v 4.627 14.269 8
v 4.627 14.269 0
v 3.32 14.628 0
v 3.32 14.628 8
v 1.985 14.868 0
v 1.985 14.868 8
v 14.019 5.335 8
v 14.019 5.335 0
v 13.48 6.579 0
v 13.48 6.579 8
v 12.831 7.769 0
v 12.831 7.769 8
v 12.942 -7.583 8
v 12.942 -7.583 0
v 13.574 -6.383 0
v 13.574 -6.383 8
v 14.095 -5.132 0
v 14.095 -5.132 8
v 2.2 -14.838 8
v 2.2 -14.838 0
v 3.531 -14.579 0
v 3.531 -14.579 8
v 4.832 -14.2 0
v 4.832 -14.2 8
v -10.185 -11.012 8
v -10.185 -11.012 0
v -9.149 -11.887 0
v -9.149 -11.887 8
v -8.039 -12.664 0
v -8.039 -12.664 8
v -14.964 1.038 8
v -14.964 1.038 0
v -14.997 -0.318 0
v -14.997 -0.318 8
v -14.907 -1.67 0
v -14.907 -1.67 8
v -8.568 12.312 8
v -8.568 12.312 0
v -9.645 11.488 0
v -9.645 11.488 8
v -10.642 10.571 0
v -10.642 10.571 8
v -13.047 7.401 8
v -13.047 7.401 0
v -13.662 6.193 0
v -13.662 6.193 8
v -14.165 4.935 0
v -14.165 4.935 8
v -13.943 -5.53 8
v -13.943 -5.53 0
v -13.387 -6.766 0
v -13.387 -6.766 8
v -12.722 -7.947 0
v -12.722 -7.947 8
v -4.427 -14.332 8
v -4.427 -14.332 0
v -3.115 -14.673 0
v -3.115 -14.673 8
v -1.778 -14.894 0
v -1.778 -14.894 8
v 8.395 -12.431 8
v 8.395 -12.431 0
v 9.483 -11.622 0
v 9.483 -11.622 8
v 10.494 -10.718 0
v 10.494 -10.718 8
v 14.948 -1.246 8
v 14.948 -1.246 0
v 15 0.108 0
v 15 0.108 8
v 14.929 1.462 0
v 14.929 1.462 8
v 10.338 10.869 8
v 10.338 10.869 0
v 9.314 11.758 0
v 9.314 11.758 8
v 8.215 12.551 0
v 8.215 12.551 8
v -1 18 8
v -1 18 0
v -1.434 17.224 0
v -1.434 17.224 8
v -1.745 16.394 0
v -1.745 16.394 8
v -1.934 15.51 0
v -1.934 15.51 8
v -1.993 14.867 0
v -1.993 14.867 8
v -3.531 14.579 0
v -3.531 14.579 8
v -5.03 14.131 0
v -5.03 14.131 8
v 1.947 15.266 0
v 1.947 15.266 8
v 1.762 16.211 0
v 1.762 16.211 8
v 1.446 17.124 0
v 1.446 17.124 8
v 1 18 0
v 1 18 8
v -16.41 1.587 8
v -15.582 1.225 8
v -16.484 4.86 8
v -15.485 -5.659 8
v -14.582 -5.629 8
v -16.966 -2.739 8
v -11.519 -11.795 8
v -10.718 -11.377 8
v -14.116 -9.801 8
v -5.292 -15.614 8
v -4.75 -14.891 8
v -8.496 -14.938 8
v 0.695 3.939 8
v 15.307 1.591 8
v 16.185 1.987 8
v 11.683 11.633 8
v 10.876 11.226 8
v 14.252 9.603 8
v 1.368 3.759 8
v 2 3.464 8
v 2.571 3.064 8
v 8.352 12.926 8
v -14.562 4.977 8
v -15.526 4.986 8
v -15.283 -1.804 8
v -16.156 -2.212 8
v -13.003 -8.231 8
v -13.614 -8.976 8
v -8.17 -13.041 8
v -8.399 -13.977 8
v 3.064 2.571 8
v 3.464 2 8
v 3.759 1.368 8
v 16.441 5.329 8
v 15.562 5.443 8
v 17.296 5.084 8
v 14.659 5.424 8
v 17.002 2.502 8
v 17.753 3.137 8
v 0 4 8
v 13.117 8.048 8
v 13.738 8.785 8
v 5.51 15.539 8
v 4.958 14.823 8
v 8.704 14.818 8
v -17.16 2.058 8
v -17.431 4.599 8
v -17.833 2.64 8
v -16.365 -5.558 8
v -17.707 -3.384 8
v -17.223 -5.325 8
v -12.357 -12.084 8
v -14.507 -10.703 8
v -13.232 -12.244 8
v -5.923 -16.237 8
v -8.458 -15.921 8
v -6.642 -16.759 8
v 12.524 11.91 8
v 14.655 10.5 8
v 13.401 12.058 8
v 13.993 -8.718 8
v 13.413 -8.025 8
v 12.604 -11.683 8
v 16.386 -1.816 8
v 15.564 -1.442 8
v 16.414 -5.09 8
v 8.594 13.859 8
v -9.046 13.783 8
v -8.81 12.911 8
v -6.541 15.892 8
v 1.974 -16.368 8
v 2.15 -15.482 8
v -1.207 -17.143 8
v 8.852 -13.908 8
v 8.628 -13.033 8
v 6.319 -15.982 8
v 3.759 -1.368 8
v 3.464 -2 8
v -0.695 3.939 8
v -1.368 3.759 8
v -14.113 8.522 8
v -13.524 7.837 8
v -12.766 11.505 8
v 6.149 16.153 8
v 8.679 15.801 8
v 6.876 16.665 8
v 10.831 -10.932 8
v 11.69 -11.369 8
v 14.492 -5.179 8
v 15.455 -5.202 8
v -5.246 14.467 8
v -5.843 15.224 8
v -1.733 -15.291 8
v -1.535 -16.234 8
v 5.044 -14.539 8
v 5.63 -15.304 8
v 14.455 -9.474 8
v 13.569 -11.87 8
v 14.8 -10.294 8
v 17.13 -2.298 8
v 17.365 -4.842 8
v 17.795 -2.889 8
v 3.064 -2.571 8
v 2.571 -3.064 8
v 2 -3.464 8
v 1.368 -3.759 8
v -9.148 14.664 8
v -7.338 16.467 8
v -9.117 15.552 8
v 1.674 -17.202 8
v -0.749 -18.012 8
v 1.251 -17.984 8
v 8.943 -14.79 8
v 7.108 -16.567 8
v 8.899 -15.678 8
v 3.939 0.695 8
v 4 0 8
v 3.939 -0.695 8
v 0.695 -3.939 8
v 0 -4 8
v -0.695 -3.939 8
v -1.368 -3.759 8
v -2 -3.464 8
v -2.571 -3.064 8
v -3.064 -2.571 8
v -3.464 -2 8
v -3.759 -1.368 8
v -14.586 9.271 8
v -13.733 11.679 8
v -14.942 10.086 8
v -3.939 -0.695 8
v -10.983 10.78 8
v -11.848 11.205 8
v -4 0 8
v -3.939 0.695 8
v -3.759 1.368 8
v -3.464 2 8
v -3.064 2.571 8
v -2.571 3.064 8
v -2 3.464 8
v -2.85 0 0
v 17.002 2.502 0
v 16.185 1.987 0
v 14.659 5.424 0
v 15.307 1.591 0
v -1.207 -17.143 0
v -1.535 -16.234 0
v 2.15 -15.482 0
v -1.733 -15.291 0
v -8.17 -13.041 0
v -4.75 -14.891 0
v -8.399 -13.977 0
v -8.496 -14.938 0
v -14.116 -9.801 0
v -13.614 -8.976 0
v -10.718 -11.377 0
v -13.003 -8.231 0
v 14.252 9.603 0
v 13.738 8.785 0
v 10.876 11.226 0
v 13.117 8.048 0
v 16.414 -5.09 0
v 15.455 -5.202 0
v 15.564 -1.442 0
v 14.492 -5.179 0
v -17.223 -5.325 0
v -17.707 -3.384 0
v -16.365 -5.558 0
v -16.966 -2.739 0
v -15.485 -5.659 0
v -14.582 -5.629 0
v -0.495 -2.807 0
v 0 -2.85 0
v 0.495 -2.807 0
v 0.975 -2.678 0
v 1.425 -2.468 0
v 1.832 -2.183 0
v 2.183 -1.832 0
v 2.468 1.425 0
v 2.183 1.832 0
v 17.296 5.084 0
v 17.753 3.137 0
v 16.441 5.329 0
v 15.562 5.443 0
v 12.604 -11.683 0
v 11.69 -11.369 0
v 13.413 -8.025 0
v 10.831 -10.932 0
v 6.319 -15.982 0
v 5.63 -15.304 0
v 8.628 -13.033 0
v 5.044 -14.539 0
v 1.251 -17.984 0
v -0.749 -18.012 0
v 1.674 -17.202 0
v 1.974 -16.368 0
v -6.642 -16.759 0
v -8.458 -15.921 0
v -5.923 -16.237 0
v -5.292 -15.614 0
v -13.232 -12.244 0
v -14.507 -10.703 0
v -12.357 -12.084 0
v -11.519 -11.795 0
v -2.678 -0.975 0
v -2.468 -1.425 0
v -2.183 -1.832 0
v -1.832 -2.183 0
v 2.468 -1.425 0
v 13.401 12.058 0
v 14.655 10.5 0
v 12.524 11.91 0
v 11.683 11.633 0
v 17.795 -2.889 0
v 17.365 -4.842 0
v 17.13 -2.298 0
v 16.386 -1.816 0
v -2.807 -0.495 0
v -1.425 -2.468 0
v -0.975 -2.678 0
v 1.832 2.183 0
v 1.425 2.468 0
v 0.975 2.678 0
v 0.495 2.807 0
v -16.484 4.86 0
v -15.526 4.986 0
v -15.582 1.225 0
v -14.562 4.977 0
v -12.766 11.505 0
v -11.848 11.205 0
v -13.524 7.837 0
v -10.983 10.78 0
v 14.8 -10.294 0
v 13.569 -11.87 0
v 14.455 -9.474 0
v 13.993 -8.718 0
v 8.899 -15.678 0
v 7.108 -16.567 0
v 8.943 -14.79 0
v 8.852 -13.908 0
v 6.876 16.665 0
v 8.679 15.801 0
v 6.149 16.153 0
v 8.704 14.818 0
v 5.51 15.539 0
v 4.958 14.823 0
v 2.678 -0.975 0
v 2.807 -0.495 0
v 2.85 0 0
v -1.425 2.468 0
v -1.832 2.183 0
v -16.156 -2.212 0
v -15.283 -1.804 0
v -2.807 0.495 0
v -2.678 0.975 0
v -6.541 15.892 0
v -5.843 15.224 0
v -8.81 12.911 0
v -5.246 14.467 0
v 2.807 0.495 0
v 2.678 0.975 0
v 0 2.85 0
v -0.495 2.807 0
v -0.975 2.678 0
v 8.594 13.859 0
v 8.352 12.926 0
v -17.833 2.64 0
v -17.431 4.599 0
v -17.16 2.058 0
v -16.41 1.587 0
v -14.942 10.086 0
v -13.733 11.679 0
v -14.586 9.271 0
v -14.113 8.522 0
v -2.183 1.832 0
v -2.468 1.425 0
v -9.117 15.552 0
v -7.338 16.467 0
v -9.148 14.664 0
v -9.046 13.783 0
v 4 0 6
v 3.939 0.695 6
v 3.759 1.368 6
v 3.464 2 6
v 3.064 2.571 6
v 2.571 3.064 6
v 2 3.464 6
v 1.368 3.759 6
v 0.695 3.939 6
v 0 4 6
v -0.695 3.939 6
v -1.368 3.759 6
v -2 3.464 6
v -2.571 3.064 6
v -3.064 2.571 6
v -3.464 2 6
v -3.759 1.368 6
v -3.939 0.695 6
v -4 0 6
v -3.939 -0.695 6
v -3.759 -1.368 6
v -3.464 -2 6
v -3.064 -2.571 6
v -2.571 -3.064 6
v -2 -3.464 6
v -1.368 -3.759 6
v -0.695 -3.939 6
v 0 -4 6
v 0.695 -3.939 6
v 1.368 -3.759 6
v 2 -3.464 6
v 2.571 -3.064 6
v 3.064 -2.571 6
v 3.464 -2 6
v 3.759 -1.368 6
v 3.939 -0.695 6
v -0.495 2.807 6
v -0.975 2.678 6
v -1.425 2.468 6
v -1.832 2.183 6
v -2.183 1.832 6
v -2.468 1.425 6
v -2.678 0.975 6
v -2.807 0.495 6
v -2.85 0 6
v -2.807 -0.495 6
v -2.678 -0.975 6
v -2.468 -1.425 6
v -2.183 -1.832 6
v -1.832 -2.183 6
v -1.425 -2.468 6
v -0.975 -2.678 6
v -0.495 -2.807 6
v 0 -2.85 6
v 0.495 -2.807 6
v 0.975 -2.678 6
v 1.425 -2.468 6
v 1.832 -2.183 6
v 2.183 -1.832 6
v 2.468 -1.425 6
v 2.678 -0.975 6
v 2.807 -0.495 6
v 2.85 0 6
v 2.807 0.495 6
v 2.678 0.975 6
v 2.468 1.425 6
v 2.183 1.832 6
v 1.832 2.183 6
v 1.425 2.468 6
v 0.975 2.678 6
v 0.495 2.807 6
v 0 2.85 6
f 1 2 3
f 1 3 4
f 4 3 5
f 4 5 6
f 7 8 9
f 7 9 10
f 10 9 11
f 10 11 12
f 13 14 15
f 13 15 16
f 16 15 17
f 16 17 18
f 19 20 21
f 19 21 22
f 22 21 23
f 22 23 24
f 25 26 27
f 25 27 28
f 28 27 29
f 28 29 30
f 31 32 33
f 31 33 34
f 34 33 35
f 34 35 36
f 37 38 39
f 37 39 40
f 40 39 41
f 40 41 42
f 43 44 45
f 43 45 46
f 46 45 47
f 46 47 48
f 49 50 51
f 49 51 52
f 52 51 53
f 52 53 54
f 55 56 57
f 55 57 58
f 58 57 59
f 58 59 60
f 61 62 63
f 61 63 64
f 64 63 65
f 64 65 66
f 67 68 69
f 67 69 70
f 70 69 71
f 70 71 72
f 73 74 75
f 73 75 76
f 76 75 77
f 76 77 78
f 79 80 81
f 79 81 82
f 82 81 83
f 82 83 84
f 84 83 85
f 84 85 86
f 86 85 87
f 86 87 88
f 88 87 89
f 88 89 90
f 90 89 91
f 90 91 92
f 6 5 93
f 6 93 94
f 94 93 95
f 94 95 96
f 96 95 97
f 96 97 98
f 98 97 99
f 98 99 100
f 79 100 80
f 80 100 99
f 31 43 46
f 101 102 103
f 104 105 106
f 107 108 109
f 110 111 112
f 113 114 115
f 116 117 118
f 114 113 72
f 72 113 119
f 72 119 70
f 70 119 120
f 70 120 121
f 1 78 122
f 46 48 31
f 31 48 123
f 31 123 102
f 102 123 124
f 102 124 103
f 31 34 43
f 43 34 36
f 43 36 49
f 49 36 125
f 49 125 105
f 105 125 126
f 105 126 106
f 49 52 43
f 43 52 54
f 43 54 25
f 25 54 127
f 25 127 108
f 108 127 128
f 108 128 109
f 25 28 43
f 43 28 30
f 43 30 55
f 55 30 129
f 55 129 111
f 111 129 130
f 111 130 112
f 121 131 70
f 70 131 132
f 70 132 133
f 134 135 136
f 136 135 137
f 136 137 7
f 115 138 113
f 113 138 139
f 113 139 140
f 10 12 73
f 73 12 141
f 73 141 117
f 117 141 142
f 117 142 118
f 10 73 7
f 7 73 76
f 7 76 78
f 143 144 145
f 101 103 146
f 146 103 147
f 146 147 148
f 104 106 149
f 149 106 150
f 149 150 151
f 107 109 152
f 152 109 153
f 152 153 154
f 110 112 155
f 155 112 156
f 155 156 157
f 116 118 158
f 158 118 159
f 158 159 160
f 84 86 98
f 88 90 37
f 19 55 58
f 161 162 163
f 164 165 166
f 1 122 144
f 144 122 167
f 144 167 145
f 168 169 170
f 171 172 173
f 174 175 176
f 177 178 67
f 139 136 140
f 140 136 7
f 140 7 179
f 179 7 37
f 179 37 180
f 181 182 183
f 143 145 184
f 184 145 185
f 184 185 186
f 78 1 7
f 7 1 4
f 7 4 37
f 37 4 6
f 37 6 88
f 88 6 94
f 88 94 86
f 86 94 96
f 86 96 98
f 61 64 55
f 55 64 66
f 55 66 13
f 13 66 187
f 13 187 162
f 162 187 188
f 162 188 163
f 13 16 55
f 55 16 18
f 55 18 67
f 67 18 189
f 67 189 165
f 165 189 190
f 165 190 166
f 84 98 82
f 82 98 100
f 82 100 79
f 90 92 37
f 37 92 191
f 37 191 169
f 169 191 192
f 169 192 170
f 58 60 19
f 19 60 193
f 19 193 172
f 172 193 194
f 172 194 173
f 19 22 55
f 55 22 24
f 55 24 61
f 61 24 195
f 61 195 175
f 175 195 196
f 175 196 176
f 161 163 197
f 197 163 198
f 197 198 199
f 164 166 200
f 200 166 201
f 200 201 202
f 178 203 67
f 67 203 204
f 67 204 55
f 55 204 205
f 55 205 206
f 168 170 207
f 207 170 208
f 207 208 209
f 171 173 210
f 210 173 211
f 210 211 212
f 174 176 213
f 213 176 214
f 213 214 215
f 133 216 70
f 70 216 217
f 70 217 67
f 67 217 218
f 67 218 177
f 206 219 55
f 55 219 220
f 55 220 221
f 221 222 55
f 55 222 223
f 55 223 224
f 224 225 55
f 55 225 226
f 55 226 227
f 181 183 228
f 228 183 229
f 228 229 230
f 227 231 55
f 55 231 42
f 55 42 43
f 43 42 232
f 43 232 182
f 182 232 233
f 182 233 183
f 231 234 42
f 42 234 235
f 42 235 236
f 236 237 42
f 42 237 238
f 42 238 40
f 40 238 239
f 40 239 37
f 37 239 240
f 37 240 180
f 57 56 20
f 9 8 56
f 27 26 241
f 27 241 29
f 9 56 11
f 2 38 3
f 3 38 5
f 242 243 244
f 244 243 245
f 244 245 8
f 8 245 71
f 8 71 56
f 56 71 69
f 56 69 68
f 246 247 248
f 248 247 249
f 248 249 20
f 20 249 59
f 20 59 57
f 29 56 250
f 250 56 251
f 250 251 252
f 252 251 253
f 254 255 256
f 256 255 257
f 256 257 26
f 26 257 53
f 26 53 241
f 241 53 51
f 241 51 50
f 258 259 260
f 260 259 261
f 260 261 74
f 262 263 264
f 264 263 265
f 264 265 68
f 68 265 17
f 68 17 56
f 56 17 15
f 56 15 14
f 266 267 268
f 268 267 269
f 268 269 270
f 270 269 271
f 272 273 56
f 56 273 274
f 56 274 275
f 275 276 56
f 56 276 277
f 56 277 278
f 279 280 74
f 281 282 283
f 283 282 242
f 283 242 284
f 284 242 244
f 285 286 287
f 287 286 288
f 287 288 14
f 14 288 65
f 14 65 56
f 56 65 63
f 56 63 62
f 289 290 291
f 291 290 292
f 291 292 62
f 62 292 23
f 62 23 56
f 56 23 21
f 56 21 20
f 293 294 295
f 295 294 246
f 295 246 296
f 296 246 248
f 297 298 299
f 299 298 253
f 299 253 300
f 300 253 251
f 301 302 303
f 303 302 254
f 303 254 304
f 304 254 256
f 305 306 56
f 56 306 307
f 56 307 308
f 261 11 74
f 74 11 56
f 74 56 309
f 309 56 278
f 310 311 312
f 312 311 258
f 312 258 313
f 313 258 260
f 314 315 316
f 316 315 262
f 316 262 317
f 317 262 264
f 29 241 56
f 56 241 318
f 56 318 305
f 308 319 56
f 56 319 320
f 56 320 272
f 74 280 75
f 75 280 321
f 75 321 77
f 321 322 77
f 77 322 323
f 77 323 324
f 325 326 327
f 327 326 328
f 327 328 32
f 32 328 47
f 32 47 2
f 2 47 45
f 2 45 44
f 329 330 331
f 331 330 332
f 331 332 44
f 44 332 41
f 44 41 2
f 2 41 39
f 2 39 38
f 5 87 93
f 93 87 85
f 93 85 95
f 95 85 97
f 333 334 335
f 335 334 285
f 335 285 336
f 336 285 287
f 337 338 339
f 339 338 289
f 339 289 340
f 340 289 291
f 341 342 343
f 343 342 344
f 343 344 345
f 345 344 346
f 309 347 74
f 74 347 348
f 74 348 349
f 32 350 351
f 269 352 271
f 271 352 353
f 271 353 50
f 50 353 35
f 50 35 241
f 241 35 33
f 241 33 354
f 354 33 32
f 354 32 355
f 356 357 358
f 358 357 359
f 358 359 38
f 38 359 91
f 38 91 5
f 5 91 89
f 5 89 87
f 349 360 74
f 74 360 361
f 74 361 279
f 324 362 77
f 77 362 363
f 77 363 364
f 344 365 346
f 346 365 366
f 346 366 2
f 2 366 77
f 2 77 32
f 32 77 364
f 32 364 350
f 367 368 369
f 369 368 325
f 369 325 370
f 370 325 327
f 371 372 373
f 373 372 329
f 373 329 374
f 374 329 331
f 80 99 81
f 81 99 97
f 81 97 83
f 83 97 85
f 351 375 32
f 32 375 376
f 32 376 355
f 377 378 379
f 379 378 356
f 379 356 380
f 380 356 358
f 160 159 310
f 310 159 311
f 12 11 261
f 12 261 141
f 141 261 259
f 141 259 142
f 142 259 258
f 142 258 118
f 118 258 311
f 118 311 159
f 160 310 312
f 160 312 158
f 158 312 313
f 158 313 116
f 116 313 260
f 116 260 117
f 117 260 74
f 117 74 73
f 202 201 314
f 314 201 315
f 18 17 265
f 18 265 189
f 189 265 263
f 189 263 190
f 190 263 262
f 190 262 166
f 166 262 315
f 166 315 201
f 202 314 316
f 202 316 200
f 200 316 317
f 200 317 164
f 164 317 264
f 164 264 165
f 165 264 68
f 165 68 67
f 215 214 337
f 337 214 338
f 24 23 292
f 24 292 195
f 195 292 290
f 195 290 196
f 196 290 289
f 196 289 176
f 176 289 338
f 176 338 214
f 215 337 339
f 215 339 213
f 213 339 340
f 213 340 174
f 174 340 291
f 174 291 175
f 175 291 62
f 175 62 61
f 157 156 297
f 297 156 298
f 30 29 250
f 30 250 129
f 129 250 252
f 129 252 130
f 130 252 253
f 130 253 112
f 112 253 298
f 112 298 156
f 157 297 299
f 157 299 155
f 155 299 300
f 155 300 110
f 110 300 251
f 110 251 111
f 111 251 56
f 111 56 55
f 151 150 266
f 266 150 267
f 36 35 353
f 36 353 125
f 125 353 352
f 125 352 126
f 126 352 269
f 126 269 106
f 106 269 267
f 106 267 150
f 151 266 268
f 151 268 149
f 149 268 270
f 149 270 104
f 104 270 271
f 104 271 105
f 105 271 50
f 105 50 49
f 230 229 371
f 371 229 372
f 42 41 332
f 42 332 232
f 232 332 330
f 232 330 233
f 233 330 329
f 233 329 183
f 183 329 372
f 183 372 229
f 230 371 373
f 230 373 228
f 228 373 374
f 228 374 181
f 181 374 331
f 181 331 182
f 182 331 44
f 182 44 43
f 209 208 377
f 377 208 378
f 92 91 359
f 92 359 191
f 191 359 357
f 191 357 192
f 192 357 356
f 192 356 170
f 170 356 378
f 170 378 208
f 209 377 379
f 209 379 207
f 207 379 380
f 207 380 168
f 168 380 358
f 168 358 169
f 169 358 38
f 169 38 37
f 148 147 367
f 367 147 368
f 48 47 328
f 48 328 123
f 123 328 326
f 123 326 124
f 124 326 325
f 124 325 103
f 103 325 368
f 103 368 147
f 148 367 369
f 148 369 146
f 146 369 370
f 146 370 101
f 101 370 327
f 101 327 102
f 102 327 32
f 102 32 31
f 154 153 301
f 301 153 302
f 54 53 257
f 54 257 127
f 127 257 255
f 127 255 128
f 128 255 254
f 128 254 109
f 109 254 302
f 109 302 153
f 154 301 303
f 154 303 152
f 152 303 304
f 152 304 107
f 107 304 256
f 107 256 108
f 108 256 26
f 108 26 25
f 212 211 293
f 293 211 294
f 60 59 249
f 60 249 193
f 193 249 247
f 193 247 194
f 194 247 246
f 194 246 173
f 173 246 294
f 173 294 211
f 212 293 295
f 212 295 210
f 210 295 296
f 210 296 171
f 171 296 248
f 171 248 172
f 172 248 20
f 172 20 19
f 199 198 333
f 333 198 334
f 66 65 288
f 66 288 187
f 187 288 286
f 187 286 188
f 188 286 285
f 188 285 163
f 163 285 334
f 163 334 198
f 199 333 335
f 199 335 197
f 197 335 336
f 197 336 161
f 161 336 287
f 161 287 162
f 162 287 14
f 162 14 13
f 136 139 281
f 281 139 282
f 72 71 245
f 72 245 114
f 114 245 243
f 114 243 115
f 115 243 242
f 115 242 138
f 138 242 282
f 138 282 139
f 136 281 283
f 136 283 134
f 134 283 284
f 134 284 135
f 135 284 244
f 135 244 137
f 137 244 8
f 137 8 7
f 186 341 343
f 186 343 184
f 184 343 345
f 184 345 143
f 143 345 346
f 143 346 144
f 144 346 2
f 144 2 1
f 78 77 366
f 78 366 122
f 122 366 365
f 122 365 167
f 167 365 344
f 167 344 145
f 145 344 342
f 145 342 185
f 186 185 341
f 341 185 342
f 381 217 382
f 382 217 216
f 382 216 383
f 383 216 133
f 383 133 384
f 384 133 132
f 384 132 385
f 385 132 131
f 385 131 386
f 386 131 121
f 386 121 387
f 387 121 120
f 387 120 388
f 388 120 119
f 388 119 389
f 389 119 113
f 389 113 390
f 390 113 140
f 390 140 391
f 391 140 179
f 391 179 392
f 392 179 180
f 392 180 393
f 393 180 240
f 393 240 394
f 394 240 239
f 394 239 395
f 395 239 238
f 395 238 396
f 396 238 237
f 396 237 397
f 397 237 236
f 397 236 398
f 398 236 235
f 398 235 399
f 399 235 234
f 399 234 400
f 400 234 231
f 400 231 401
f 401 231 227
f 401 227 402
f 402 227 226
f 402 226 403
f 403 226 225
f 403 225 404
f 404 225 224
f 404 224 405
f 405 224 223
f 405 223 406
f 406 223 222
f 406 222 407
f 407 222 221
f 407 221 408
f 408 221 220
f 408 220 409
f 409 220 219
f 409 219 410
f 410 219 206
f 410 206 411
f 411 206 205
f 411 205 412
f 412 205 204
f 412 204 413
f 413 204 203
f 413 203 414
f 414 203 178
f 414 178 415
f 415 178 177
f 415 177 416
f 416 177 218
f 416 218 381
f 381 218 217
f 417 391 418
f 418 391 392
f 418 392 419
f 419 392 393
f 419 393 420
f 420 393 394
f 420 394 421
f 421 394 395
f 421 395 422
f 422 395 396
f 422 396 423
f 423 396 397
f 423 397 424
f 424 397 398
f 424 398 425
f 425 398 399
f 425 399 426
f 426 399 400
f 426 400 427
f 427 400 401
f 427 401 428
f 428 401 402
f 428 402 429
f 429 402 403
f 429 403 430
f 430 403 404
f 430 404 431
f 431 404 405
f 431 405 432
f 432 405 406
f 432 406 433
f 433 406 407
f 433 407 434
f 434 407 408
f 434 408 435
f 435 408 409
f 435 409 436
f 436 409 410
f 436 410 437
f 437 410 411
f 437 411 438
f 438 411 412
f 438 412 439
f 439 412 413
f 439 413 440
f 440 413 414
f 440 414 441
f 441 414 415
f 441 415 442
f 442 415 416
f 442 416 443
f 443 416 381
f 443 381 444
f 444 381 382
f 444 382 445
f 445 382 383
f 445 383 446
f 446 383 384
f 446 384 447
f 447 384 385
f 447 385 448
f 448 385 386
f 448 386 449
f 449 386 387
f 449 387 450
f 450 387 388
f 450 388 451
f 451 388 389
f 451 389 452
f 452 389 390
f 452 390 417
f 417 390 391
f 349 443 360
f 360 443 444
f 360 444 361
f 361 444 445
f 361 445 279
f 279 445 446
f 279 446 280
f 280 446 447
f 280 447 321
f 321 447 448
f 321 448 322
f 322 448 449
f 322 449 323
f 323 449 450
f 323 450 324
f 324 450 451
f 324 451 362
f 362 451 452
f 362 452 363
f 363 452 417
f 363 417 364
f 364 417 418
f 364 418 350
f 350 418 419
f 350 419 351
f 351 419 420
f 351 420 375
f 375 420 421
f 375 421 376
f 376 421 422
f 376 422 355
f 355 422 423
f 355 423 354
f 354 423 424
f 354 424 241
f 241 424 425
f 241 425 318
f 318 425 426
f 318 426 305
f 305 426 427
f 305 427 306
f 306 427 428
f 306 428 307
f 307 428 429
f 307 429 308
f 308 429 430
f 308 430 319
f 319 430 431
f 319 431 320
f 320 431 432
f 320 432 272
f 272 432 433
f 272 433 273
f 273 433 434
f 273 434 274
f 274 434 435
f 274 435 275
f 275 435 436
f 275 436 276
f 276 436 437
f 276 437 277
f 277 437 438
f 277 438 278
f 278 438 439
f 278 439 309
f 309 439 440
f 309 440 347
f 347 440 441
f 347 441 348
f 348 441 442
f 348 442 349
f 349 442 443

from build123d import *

# Parameters (mm, degrees)
BOSS_EXTRUDE1_DEPTH = 8
CIRPATTERN1_COUNT   = 14
CIRPATTERN1_ANGLE   = 332.8
SKETCH3_R           = 4
CUT_EXTRUDE2_DEPTH  = 2
SKETCH2_R           = 2.85
CUT_EXTRUDE4_DEPTH  = 14


with BuildPart() as part:
    # Sketch1 → Boss-Extrude1 (new body)
    with BuildSketch(Plane.XY):
        with BuildLine():
            Line((-1, 18), (1, 18))
            add(Edge.make_bspline(
                [(1, 18), (1.578443342, 17.032357733), (1.90693166, 15.988363393), (1.985464954, 14.86801698)],
                knots=[0, 0, 0, 0, 0.922231511, 0.922231511, 0.922231511, 0.922231511], degree=3))
            ThreePointArc((1.985464954, 14.86801698), (0.003612333, -14.999999565), (-1.99262582, 14.867058967))
            add(Edge.make_bspline(
                [(-1, 18), (-1.608825246, 17.079975603), (-1.93970052, 16.035661926), (-1.99262582, 14.867058967)],
                knots=[0, 0, 0, 0, 0.925626866, 0.925626866, 0.925626866, 0.925626866], degree=3))
        make_face()
    boss_extrude1 = extrude(amount=BOSS_EXTRUDE1_DEPTH)

    # CirPattern1: Boss-Extrude1 ×14 about axis
    cirpattern1_axis = Axis((0, 0, 8), (0, 0, -1))
    for i in range(1, CIRPATTERN1_COUNT):
        add(boss_extrude1.rotate(cirpattern1_axis, i * CIRPATTERN1_ANGLE / (CIRPATTERN1_COUNT - 1)))

    # Sketch3 → Cut-Extrude2 (cut)
    with BuildSketch(Plane.XY.offset(8)):
        Circle(SKETCH3_R)
    extrude(amount=-CUT_EXTRUDE2_DEPTH, mode=Mode.SUBTRACT)

    # Sketch2 → Cut-Extrude4 (cut)
    with BuildSketch(Plane.XY.offset(8)):
        Circle(SKETCH2_R)
    extrude(amount=-CUT_EXTRUDE4_DEPTH, mode=Mode.SUBTRACT)


solid = part.part
